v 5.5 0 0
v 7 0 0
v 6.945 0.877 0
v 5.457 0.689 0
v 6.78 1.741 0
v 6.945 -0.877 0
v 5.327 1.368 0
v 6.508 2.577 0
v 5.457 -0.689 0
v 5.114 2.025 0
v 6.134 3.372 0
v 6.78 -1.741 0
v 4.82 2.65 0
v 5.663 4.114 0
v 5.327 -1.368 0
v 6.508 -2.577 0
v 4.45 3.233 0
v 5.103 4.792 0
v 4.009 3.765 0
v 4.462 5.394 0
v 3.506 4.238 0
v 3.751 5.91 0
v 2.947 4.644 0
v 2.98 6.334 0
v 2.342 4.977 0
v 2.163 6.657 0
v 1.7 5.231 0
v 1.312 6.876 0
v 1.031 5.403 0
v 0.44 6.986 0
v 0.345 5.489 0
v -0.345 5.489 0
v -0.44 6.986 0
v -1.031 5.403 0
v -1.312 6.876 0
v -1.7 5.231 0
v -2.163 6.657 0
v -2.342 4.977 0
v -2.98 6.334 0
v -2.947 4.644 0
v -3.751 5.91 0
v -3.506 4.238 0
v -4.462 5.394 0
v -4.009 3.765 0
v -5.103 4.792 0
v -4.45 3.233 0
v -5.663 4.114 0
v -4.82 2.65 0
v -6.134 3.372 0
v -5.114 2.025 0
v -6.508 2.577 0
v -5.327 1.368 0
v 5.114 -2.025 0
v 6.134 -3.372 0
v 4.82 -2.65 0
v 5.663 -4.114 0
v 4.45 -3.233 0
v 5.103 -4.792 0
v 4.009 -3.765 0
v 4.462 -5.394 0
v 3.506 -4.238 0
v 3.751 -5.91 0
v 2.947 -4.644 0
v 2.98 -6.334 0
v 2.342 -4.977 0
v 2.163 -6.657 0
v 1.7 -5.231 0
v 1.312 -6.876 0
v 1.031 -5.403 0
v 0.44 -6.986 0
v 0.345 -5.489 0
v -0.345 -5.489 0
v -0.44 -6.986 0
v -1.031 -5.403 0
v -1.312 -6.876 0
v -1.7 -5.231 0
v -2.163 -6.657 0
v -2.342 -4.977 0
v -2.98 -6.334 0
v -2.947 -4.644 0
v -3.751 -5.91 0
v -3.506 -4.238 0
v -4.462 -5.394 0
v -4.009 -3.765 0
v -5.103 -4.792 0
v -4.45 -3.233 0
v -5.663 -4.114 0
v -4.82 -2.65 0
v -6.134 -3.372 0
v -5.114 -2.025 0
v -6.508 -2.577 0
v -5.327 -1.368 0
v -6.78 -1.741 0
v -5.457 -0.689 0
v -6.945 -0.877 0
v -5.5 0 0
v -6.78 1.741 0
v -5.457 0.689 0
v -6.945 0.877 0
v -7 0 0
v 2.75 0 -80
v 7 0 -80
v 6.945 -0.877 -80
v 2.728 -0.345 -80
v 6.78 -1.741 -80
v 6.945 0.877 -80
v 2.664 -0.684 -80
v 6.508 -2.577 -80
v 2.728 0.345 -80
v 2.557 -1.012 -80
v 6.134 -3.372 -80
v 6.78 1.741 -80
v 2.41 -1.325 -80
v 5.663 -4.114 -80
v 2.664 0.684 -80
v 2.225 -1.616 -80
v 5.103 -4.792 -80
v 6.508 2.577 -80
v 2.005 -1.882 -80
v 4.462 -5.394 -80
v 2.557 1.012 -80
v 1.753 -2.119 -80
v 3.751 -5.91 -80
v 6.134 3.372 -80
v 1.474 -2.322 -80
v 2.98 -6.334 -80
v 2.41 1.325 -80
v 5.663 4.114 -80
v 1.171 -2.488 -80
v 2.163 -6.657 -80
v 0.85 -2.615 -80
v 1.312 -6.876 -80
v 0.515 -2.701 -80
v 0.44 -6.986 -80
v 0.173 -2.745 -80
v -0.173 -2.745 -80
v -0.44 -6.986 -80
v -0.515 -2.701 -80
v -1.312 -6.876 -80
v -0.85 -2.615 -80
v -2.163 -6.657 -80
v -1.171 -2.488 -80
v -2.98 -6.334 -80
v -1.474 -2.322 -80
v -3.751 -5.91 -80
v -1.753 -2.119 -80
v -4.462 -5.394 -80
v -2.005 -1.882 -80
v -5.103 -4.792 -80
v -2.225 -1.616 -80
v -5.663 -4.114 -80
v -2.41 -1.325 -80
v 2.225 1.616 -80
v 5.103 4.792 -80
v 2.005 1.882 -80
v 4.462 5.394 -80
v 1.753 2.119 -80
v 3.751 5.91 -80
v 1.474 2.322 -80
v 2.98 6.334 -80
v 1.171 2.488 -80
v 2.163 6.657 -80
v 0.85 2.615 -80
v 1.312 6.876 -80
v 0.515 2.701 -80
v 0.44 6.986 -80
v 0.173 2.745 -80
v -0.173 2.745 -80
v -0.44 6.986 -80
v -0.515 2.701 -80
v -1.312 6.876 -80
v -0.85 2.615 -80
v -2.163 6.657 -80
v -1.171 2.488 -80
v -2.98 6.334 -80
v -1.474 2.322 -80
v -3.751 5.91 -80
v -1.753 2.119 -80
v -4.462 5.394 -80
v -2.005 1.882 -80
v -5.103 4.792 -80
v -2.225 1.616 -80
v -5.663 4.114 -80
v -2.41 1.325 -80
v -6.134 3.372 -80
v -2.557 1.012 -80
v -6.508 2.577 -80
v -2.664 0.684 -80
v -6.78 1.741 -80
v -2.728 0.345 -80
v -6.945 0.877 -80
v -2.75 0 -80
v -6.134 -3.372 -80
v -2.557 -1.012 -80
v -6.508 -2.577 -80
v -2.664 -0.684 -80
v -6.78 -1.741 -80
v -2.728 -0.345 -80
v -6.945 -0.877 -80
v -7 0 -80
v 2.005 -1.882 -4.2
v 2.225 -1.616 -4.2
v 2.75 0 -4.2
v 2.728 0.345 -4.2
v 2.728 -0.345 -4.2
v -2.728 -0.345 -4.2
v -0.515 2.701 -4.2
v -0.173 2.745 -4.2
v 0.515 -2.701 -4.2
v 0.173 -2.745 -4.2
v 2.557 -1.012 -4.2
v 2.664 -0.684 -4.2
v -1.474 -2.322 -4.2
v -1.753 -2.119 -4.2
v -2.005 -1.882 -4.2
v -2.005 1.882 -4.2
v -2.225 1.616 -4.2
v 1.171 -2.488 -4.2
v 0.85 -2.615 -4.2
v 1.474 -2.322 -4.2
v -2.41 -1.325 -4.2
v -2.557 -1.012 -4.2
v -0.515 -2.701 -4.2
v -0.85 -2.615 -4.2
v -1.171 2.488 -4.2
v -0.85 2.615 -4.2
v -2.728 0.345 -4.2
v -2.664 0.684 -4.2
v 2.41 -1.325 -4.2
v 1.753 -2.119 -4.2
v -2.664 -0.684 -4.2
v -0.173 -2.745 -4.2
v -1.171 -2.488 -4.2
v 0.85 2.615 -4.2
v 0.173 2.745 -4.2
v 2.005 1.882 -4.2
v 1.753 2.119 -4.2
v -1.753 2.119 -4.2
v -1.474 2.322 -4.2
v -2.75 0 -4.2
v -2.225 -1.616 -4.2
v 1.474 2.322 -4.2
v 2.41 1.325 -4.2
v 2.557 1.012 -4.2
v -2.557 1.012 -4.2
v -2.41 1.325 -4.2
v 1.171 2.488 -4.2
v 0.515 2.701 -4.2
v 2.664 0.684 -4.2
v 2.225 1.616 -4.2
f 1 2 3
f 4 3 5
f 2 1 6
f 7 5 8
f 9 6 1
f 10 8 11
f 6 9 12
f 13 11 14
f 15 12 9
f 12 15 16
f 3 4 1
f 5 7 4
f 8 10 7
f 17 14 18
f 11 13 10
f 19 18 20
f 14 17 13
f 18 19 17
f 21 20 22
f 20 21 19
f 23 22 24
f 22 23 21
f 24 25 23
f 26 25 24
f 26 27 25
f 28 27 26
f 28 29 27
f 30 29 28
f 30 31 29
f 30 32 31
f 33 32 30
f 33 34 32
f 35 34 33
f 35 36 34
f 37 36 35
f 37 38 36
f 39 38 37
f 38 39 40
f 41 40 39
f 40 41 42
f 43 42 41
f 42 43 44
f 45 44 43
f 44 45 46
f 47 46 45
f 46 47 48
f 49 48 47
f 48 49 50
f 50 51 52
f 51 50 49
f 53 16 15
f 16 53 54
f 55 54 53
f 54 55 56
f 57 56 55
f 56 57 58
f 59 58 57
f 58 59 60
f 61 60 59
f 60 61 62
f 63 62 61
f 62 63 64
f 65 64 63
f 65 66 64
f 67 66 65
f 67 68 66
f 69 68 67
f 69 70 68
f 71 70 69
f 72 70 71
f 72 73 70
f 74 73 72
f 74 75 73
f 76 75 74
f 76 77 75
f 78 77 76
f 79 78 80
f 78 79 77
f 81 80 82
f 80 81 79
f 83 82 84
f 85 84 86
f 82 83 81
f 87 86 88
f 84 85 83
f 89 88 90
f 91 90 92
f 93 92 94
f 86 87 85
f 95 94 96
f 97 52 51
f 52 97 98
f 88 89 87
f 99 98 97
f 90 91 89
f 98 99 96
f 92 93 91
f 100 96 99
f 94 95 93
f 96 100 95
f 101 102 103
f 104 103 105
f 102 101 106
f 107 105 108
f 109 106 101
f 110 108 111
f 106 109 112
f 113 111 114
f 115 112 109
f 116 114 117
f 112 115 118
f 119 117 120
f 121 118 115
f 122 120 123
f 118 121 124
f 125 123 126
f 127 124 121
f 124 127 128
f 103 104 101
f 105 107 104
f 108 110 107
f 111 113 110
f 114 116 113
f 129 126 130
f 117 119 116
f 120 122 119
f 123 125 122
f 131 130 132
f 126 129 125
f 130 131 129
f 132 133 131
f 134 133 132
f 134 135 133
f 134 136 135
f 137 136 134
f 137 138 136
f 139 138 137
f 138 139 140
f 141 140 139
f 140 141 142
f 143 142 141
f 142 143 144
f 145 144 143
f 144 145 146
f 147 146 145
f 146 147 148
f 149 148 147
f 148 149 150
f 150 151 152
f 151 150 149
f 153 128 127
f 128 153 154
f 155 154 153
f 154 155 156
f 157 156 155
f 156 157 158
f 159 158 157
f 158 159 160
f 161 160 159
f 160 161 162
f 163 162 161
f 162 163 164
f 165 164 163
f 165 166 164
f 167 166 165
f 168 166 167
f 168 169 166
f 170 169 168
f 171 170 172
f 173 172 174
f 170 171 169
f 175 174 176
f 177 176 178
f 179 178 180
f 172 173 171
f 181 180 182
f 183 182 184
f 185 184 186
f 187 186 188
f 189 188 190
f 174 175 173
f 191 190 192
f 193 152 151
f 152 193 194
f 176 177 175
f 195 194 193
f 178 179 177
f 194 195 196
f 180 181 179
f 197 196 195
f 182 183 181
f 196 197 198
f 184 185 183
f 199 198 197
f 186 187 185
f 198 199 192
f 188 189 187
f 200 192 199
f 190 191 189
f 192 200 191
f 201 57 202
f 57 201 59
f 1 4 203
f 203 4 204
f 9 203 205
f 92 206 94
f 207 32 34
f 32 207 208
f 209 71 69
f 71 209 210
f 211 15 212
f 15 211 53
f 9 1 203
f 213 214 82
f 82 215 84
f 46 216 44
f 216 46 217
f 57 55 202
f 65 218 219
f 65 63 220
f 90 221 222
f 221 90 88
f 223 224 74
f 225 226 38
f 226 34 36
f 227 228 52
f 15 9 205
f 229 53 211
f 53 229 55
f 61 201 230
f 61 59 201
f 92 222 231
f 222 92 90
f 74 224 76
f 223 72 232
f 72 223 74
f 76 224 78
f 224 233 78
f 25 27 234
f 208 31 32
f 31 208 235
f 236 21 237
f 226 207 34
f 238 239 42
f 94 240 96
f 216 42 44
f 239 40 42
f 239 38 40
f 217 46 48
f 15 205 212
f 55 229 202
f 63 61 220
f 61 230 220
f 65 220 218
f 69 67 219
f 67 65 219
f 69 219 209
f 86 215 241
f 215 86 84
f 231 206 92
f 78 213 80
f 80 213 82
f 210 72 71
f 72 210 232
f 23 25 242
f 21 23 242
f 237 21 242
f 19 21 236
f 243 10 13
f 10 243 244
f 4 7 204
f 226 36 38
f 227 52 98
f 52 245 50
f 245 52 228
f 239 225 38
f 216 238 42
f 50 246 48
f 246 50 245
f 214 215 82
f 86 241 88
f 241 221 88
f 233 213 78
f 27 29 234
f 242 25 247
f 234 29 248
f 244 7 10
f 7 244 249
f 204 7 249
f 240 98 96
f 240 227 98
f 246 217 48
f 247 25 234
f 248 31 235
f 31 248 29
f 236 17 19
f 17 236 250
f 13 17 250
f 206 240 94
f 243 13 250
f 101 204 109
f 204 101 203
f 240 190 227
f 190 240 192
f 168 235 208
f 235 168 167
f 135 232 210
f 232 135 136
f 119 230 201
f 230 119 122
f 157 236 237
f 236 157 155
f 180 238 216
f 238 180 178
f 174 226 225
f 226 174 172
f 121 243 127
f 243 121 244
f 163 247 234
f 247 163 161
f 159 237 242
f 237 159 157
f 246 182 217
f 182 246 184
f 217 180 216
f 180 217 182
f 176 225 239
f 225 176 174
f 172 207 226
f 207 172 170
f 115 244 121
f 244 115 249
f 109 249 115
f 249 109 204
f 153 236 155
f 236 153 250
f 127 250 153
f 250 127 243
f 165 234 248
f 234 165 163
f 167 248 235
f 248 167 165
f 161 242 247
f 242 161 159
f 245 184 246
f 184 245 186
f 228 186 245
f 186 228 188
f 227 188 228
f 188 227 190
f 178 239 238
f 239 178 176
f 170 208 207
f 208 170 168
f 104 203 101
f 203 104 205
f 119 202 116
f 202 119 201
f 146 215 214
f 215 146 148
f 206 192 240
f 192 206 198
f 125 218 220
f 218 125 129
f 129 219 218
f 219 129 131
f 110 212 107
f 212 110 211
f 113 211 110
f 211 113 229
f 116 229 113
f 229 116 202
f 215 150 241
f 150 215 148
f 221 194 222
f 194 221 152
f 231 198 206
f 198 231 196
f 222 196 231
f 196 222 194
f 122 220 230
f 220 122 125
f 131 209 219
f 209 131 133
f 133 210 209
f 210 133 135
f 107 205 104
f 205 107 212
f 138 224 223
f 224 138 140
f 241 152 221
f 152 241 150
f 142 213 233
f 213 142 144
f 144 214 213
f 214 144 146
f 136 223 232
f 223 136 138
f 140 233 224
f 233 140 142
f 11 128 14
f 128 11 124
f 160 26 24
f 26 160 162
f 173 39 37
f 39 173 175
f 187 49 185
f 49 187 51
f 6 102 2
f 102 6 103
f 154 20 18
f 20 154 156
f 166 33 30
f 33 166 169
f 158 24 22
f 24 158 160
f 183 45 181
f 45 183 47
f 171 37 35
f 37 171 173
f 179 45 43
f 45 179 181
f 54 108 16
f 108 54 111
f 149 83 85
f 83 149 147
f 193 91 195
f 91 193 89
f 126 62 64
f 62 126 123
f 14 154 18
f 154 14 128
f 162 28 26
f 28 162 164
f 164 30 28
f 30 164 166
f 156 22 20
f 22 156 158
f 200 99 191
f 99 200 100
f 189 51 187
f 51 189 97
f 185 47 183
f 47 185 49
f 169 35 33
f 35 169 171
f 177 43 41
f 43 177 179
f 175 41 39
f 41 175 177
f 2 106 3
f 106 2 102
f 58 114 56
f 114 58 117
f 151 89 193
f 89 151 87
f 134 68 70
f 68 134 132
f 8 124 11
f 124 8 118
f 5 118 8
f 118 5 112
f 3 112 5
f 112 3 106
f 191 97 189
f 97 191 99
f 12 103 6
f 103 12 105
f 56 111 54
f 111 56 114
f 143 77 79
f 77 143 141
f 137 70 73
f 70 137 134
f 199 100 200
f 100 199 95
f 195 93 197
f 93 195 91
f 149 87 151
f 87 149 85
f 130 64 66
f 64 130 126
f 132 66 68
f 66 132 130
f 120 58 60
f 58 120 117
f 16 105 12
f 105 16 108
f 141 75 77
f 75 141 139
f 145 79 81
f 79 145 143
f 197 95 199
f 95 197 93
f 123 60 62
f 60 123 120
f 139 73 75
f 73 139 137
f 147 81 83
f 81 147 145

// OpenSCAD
$fn = 50;


difference() {
	union() {
		translate(v = [0, 0, -80.0000000000]) {
			cylinder(h = 80, r = 7.0000000000);
		}
	}
	union() {
		translate(v = [0, 0, 0]) {
			rotate(a = [0, 0, 0]) {
				difference() {
					union() {
						#translate(v = [0, 0, -80.0000000000]) {
							cylinder(h = 80, r = 2.2500000000);
						}
						#translate(v = [0, 0, -4.2000000000]) {
							cylinder(h = 4.2000000000, r = 7.0000000000, r1 = 2.7500000000, r2 = 5.5000000000);
						}
						#translate(v = [0, 0, -80.0000000000]) {
							cylinder(h = 80, r = 2.7500000000);
						}
						#translate(v = [0, 0, -80.0000000000]) {
							cylinder(h = 80, r = 2.2500000000);
						}
					}
					union();
				}
			}
		}
	}
}
